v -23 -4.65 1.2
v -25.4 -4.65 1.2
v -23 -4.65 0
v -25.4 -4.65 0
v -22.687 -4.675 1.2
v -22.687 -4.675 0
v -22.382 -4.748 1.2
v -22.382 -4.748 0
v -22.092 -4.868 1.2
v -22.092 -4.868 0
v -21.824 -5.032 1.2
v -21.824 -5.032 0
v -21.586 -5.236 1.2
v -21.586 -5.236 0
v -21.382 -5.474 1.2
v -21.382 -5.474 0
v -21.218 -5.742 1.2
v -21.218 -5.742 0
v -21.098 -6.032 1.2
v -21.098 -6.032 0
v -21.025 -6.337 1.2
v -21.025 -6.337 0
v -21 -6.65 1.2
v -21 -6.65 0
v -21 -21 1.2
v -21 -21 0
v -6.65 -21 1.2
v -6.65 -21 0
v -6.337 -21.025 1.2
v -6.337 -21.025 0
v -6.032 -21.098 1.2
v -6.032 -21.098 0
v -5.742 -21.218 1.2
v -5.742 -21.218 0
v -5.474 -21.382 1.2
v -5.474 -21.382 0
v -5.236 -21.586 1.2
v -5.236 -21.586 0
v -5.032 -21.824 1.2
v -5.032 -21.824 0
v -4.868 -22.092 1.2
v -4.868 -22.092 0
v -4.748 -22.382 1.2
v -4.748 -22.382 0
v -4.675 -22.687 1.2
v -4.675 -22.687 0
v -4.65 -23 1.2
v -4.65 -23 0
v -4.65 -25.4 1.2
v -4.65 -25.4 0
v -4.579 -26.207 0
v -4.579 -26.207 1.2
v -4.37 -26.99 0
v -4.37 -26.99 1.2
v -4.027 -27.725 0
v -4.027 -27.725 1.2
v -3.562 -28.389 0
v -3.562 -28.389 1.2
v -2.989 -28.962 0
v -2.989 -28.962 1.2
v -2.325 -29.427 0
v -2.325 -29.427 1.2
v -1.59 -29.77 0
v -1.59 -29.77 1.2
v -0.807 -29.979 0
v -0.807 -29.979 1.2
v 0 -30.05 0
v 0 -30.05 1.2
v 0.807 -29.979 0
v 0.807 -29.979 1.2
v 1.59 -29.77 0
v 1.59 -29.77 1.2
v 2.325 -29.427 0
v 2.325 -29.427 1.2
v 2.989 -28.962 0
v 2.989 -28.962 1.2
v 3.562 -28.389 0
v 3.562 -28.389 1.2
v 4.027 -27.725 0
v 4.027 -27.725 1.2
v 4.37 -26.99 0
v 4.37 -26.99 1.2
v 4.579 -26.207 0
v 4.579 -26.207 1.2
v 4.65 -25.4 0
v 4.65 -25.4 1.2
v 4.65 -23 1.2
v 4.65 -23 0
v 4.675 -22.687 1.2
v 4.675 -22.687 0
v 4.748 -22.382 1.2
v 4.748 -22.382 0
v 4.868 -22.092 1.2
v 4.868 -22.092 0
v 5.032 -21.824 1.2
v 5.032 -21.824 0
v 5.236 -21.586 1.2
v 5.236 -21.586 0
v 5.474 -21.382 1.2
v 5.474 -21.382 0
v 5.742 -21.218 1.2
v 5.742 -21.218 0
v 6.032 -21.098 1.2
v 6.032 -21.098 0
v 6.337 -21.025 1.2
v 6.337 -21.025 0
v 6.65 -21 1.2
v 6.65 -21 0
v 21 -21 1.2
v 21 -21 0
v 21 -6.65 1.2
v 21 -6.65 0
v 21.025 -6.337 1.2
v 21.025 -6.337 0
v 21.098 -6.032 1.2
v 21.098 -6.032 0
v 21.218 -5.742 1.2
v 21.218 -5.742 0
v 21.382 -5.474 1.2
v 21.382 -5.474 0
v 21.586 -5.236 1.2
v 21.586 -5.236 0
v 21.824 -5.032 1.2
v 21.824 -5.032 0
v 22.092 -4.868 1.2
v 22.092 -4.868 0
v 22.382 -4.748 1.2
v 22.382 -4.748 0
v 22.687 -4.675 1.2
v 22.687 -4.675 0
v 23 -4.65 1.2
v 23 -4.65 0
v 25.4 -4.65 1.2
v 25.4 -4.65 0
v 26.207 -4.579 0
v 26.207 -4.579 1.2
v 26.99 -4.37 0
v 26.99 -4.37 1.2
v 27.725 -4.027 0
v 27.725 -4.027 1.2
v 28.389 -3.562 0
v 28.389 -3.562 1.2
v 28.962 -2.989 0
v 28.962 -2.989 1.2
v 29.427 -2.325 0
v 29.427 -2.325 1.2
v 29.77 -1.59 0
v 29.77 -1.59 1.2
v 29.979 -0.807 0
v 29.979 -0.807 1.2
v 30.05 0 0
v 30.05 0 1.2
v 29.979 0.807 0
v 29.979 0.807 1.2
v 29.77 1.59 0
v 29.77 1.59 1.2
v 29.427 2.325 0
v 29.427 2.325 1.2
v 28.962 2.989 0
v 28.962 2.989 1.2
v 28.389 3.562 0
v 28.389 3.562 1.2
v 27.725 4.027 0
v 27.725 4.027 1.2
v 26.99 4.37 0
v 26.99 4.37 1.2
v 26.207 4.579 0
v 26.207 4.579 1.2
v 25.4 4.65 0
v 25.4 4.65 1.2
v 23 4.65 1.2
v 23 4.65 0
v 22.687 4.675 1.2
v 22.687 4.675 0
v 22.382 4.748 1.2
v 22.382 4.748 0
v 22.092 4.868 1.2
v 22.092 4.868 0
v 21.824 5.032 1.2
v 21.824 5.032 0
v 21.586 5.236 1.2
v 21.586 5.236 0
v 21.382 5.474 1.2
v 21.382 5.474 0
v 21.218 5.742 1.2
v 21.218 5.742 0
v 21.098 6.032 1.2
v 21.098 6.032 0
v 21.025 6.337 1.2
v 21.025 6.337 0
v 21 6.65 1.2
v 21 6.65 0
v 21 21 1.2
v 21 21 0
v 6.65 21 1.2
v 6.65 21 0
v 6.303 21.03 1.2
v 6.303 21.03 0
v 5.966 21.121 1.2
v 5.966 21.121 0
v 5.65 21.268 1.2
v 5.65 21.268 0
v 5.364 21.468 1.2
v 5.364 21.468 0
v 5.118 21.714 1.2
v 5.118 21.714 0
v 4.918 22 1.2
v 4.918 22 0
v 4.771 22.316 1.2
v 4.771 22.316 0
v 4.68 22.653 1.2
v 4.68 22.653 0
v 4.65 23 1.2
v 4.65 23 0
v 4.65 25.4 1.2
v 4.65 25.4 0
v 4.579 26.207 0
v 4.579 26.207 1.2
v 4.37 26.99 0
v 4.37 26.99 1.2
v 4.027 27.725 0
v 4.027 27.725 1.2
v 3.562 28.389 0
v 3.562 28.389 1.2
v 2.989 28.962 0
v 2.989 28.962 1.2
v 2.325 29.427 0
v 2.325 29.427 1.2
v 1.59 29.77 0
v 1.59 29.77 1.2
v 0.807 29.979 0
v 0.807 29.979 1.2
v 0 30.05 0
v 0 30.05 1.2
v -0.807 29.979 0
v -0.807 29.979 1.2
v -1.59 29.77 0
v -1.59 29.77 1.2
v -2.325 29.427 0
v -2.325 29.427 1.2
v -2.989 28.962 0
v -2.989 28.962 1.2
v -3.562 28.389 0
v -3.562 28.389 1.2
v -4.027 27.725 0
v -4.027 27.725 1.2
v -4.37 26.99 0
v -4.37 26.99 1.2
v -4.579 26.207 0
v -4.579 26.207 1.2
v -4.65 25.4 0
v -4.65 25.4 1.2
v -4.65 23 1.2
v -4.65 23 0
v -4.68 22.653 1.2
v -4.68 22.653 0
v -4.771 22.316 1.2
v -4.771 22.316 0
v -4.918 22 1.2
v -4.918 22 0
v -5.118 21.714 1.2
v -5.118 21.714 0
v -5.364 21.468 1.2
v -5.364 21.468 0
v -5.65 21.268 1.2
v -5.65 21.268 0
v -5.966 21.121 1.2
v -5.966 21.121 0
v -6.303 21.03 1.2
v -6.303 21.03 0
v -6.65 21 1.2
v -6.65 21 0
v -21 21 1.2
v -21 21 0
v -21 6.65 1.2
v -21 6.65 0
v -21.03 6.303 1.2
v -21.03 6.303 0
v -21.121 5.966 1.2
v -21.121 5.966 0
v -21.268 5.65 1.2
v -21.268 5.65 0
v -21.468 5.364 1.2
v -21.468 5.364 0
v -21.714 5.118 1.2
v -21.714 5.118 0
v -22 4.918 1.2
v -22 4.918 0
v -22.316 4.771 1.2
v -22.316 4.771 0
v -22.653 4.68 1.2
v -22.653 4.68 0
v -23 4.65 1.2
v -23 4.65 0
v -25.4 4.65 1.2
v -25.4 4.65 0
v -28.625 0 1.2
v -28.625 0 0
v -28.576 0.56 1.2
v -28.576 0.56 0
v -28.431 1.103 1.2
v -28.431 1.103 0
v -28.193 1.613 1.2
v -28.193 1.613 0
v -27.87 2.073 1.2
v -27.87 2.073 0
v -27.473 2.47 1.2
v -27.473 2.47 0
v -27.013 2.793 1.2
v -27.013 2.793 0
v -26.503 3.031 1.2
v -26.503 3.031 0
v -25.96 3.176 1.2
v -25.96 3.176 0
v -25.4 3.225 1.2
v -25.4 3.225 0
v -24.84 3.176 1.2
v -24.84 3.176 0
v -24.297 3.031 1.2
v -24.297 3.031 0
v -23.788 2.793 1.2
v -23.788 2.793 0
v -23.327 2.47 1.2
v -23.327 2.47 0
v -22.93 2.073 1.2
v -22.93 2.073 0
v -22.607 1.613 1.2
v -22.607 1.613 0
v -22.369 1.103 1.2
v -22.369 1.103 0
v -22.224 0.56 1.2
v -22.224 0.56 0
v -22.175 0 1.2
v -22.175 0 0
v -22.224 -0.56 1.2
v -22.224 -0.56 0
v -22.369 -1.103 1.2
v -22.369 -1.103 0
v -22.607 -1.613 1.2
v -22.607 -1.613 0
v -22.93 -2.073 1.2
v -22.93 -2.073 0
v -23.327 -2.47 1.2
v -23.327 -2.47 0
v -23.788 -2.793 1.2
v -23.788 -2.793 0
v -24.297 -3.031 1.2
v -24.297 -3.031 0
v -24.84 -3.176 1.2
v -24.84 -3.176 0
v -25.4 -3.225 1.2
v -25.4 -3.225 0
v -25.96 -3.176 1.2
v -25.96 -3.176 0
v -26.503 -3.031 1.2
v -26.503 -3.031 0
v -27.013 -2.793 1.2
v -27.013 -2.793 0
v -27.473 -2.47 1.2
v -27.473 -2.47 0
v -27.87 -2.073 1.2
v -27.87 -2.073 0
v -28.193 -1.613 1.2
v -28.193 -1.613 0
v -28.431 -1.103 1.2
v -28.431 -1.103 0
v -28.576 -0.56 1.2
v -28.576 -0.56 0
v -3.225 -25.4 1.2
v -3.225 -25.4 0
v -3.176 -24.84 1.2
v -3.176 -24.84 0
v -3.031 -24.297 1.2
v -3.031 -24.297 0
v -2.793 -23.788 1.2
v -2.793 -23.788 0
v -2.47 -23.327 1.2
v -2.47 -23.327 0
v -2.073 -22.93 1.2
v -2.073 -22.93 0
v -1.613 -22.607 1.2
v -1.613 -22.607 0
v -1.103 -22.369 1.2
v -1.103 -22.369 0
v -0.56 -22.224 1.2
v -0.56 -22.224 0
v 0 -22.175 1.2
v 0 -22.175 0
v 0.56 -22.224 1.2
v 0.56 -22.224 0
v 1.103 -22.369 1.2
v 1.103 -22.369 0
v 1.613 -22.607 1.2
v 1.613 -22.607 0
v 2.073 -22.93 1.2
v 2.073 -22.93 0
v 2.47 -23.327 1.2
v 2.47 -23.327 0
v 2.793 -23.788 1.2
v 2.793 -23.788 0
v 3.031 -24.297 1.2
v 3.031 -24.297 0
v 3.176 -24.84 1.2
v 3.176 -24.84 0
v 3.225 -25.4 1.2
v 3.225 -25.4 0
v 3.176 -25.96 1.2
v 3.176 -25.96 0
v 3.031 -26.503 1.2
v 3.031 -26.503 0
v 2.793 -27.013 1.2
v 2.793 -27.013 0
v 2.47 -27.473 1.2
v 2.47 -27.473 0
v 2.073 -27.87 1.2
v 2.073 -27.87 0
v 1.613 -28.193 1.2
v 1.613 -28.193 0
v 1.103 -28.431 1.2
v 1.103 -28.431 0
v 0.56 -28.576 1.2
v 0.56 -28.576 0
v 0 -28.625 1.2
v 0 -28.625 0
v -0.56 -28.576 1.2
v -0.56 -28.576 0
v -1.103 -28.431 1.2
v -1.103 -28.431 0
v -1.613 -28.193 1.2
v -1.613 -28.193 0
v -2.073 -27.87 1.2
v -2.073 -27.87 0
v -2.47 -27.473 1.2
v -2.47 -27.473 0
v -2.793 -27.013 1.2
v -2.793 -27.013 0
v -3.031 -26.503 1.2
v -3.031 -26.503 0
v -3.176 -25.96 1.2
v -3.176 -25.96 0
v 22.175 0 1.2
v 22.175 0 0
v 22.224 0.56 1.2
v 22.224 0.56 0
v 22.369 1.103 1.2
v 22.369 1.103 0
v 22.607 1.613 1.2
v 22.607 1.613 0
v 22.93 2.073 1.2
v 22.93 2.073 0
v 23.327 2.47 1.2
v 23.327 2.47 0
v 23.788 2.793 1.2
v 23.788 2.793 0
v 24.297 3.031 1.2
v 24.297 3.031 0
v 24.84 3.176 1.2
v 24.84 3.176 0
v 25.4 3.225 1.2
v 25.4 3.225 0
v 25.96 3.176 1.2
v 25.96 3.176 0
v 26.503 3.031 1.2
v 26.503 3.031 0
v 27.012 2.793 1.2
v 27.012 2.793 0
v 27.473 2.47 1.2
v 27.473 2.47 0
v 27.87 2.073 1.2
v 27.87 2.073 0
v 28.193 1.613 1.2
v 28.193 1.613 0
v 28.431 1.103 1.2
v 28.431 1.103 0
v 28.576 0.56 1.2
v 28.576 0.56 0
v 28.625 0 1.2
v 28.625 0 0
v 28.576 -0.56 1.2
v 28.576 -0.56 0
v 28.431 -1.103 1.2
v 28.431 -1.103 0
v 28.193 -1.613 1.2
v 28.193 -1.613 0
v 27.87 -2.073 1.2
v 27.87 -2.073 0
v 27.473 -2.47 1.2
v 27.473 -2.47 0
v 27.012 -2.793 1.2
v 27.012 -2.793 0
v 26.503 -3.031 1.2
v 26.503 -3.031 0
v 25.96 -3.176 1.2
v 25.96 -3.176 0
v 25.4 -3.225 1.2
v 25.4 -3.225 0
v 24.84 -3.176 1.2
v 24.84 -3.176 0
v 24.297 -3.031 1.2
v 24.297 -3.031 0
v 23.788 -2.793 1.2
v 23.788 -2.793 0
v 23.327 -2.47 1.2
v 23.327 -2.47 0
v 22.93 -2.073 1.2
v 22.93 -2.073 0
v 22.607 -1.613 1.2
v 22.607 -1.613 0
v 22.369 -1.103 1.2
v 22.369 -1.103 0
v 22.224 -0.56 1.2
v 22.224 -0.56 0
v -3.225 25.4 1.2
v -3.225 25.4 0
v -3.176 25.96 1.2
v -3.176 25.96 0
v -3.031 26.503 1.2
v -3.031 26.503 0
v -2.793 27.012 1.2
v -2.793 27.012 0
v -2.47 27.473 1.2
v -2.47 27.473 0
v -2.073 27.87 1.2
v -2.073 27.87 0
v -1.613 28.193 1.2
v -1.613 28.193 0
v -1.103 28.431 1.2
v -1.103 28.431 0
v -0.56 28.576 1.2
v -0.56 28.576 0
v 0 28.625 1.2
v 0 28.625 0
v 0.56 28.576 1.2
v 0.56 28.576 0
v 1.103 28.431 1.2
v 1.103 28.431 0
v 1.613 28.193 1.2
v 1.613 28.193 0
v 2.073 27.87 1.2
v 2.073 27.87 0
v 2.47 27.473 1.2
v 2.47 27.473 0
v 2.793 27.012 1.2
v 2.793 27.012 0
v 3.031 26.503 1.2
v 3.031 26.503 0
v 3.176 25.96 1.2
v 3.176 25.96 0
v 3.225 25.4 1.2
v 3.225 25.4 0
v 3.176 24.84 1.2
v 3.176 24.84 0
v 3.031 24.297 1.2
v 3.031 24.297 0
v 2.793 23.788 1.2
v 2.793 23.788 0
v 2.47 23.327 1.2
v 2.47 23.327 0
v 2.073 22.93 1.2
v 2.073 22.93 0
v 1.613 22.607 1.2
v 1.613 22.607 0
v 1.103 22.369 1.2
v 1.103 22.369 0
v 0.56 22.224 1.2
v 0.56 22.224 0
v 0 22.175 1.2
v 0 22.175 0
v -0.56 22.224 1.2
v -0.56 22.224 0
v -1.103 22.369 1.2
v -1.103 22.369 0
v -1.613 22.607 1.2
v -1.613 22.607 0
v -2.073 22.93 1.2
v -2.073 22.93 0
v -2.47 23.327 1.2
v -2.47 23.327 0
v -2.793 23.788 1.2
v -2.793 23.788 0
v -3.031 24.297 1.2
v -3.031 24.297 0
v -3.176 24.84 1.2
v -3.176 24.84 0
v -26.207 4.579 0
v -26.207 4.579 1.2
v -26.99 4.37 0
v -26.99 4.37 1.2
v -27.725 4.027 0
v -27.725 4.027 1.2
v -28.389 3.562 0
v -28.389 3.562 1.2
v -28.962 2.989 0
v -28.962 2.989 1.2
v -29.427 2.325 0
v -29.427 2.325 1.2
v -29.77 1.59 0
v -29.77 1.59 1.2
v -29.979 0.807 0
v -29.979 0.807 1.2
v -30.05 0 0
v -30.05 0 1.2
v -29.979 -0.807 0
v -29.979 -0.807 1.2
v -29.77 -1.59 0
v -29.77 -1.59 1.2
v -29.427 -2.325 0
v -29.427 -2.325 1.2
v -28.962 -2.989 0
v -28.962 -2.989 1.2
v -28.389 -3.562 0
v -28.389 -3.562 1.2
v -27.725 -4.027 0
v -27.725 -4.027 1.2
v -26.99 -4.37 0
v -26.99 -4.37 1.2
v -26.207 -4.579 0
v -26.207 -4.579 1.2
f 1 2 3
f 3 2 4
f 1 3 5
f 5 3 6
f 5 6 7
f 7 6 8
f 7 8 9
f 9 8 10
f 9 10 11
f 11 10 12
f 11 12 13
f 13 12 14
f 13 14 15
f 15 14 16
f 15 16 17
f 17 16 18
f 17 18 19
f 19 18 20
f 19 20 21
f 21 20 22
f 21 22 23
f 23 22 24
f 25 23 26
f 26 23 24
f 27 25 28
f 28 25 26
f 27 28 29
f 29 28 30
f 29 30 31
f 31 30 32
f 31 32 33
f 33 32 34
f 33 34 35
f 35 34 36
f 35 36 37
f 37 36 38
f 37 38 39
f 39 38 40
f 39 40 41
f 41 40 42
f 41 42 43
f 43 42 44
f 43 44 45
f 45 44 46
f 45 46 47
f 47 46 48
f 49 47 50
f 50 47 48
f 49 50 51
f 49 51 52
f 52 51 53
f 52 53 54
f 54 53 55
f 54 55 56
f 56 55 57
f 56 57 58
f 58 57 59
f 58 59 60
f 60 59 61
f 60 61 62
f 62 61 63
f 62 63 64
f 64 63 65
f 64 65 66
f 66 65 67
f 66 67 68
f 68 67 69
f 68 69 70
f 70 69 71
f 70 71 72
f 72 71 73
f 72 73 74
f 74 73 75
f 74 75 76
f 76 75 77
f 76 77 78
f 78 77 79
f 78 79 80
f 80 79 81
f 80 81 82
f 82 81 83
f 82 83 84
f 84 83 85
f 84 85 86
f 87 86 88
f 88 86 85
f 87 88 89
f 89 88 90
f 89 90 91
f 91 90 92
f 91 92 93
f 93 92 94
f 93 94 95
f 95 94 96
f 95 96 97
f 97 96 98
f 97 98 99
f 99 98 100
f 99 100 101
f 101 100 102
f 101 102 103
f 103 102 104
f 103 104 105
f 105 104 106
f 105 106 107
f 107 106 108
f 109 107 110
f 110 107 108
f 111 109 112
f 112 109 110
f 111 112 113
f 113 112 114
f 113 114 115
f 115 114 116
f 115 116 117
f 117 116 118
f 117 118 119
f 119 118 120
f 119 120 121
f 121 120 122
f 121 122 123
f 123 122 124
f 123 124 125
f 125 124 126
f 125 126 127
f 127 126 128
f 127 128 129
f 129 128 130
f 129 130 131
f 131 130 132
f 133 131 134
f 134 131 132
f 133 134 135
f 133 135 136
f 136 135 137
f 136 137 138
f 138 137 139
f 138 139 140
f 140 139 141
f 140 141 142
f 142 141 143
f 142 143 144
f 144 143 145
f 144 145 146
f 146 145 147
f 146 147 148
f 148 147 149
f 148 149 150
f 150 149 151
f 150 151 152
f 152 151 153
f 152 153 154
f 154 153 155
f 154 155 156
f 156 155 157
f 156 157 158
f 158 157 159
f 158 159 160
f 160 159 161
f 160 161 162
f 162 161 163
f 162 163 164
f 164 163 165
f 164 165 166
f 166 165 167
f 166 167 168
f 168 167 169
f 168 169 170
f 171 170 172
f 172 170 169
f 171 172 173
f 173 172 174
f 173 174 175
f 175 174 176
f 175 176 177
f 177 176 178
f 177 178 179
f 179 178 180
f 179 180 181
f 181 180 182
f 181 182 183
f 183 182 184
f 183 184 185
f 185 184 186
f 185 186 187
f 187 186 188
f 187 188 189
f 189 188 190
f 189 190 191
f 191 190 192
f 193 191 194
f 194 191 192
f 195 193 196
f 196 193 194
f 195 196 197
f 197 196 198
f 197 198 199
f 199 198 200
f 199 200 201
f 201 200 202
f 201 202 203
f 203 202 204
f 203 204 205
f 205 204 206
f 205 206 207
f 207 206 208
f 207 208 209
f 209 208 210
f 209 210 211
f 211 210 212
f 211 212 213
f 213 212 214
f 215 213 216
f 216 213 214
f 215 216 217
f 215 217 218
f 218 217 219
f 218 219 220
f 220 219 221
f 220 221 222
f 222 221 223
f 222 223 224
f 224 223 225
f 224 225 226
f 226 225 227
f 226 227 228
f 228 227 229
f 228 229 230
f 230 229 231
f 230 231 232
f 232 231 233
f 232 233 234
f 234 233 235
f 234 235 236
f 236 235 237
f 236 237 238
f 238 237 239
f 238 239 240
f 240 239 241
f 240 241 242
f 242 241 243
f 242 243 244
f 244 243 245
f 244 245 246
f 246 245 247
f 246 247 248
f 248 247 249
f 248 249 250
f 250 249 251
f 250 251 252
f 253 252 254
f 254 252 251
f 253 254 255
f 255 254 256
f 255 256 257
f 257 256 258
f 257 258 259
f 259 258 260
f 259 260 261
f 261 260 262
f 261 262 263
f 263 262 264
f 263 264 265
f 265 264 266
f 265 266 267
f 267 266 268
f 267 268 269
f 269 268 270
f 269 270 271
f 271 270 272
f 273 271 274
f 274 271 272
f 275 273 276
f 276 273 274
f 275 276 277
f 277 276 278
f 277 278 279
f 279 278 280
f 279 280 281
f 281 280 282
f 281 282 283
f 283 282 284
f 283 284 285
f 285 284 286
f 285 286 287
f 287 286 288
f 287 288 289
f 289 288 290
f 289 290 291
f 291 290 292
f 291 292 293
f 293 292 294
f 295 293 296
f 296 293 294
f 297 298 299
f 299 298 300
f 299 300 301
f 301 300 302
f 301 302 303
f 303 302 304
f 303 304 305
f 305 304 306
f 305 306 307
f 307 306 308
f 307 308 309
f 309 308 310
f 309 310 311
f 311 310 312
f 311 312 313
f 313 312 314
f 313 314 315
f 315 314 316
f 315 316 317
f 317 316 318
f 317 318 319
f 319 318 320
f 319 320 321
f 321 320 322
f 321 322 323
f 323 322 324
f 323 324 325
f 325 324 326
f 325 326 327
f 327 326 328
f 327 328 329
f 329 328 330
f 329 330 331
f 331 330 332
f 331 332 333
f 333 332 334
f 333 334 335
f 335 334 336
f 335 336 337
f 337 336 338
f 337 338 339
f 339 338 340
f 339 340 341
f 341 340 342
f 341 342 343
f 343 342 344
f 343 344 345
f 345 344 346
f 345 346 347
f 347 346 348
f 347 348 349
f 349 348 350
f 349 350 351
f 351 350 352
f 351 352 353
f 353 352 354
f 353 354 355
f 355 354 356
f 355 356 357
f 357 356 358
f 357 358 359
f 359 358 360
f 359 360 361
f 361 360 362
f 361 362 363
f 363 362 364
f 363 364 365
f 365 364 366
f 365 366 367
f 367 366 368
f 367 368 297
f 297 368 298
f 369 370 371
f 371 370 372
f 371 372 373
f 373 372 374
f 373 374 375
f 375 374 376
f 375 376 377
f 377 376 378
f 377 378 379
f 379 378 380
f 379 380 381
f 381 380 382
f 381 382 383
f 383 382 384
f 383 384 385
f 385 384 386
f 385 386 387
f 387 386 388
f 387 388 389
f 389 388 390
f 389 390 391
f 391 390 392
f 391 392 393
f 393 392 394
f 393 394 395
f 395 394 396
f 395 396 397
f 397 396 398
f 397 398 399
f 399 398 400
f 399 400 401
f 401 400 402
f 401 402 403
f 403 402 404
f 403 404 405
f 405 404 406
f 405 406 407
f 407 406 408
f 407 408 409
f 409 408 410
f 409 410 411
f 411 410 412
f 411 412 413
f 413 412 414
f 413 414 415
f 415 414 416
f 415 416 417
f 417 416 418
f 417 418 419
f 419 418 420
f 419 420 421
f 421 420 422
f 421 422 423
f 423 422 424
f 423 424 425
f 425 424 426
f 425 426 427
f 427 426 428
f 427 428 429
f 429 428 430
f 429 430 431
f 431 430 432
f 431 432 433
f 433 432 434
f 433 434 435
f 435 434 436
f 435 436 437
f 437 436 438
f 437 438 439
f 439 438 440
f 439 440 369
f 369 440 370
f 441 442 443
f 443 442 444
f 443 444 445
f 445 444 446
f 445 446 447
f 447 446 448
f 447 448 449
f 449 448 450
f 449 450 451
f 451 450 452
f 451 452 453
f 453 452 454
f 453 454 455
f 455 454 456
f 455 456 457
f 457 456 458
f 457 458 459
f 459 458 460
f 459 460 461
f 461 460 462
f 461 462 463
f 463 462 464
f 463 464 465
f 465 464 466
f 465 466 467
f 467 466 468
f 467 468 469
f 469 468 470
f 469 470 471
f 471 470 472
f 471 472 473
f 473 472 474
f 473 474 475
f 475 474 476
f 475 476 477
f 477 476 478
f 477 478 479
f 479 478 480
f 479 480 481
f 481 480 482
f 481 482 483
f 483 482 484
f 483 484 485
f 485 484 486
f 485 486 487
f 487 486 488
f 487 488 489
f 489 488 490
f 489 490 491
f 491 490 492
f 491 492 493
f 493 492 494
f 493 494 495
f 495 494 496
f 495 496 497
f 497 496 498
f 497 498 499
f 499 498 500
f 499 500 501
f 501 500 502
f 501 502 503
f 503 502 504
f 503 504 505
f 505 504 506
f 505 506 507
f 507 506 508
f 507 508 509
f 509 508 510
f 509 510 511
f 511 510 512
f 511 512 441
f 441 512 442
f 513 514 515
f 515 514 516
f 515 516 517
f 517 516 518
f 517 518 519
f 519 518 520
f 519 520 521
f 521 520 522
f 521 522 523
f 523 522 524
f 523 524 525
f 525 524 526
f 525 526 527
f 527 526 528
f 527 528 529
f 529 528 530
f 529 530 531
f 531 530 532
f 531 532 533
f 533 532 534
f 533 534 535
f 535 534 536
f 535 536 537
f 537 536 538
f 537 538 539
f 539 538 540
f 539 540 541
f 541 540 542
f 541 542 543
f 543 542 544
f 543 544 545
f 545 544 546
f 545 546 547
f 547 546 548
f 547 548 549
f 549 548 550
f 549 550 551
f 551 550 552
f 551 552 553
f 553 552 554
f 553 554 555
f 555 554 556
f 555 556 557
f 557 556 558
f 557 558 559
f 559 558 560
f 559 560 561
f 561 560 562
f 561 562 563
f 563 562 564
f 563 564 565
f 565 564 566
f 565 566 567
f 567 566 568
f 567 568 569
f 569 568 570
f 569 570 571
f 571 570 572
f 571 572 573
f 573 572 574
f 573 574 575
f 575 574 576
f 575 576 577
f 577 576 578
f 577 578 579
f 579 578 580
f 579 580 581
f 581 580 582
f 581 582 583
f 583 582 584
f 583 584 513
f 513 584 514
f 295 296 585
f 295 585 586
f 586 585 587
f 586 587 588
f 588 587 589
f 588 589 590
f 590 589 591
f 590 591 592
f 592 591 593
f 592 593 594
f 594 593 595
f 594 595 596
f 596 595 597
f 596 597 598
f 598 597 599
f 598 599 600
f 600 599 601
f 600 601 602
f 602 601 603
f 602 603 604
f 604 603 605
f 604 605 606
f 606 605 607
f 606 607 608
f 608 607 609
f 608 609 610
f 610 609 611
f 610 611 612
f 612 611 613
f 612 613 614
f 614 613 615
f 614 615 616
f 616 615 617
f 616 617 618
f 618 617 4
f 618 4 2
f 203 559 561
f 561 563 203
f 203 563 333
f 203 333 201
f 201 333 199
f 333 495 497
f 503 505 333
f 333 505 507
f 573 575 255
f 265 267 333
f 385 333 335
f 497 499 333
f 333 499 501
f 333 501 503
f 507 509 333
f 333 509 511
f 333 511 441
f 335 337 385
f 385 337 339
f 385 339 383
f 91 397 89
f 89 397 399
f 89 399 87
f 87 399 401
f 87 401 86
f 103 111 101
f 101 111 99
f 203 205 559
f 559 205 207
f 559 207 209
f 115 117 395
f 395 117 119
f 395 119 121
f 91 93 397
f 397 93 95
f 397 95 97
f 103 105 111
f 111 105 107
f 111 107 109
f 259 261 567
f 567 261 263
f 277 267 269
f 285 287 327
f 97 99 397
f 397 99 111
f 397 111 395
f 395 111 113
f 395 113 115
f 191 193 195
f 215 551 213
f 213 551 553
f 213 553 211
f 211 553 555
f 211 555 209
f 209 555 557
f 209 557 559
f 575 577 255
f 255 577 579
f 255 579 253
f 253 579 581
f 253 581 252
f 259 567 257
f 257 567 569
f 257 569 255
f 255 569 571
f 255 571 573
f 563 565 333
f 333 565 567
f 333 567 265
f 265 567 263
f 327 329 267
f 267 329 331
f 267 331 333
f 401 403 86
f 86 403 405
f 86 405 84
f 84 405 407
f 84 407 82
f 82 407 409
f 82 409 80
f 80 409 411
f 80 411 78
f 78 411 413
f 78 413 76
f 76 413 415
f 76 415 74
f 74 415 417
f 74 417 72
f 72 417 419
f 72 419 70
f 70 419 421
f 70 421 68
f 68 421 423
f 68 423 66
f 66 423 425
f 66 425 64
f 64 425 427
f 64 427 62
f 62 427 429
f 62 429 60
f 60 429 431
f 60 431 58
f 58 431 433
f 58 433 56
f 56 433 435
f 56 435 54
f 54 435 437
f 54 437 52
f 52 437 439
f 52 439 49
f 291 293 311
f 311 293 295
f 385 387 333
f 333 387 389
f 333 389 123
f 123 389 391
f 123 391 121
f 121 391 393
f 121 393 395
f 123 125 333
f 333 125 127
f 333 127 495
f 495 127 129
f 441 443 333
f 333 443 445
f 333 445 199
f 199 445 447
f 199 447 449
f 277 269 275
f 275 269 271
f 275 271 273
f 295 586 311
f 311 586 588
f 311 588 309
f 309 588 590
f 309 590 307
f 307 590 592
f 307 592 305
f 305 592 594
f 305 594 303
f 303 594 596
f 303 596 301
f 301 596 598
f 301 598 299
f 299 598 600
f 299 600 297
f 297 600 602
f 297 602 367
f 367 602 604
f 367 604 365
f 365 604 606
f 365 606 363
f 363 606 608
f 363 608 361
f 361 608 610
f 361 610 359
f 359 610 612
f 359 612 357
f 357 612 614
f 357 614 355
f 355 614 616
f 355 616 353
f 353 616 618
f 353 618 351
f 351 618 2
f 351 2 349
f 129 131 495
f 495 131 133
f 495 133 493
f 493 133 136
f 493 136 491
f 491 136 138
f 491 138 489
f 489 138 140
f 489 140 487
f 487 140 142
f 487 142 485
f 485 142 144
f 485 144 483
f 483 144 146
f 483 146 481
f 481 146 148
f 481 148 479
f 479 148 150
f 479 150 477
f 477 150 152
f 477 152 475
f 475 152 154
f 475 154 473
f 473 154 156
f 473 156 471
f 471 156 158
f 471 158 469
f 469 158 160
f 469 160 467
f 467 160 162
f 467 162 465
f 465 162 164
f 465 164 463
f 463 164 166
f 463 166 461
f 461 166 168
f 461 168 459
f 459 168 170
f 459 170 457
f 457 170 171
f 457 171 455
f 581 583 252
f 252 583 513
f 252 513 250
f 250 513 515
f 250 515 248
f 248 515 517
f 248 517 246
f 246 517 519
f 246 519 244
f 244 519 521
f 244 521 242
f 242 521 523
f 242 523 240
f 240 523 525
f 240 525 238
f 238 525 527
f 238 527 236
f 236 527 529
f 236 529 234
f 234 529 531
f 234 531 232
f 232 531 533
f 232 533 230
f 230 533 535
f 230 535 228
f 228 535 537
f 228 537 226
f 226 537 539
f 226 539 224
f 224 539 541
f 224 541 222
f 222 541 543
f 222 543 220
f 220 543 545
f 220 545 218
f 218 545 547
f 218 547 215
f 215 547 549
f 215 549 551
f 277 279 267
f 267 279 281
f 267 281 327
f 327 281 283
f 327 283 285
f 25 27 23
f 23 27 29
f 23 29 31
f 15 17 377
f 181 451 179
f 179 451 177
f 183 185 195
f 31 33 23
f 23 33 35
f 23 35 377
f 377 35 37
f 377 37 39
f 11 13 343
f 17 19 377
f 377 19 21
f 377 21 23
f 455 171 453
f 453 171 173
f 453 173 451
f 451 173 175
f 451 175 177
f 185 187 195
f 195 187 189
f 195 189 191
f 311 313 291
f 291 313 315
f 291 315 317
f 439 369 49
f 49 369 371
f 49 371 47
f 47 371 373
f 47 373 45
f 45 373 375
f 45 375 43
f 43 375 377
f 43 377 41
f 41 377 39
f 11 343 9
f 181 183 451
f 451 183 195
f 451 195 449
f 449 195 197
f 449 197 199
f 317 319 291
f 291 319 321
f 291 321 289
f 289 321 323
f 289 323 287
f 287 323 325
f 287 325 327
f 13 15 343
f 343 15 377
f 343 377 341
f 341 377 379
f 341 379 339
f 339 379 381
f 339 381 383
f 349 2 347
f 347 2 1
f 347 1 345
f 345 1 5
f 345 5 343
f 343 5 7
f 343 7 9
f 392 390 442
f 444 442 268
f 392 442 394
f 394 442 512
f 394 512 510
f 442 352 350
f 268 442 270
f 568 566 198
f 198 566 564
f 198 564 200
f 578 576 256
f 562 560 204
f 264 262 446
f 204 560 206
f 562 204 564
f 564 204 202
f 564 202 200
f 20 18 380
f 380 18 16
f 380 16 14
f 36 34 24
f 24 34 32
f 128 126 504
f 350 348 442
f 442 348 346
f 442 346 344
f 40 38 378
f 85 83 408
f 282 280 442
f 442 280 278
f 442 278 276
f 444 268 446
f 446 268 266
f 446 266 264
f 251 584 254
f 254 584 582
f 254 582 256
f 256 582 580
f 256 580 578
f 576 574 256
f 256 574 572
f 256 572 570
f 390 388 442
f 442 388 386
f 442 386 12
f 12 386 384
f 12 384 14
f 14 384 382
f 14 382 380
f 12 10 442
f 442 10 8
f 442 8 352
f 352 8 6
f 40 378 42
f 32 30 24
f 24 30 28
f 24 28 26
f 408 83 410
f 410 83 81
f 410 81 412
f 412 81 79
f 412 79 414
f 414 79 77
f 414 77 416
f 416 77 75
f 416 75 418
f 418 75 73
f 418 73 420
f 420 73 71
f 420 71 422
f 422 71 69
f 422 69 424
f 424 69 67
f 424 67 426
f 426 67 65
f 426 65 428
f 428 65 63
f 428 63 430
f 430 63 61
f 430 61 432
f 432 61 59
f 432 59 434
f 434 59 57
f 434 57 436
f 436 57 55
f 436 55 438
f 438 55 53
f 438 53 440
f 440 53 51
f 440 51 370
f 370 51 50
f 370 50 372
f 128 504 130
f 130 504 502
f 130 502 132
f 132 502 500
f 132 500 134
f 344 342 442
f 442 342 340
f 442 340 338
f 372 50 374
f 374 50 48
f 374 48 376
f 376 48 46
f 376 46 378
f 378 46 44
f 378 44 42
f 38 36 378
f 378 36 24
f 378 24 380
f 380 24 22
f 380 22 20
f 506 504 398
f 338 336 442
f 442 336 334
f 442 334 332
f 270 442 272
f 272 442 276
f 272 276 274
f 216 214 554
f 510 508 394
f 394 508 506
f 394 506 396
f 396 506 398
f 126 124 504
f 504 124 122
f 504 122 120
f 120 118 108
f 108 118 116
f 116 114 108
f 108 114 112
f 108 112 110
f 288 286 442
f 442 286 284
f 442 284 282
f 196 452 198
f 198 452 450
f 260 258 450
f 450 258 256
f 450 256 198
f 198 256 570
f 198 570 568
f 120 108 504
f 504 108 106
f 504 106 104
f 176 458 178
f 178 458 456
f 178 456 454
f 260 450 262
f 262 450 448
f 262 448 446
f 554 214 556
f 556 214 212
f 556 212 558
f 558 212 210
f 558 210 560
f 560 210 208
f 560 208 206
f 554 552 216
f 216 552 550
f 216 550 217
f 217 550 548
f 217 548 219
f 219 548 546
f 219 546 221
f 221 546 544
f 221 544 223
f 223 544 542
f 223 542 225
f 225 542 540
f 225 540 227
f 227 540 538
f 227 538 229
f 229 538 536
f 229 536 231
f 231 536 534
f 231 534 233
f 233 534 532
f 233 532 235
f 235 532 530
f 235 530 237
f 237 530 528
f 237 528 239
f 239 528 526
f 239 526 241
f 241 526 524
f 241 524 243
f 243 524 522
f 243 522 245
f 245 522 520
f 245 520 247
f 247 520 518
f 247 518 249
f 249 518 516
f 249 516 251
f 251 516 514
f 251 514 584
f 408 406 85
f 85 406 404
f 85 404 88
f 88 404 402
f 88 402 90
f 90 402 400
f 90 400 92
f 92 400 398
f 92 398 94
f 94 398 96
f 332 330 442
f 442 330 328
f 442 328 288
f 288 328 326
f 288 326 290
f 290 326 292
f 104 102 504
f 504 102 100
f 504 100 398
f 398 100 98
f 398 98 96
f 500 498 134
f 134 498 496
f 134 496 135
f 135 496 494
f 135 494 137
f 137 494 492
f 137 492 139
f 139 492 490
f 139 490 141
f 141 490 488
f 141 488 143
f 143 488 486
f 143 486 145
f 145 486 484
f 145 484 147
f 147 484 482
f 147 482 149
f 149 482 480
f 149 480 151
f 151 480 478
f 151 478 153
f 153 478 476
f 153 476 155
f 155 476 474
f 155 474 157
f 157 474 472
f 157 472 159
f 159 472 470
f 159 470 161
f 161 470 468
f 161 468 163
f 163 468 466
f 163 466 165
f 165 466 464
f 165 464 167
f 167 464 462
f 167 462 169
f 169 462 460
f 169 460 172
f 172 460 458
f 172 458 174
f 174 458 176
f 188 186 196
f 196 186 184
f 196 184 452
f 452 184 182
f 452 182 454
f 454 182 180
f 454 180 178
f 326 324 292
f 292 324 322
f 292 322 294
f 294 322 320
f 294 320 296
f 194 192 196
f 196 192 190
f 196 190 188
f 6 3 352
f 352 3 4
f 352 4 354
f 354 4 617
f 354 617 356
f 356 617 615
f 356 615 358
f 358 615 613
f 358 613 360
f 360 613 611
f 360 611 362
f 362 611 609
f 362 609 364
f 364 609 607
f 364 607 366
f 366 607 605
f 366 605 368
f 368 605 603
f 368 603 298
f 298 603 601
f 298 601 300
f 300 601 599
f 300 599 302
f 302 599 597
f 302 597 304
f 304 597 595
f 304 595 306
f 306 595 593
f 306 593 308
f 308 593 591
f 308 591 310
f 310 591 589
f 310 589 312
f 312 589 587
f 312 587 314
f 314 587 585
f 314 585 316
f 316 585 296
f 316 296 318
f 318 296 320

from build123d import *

# Parameters (mm, degrees)
SKETCH1_R           = 3.225
BOSS_EXTRUDE1_DEPTH = 1.2


with BuildPart() as part:
    # Sketch1 → Boss-Extrude1 (new body)
    with BuildSketch(Plane.XY):
        with BuildLine():
            ThreePointArc((4.65, 25.4), (0, 30.05), (-4.65, 25.4))
            Line((-4.65, 25.4), (-4.65, 23))
            ThreePointArc((-4.65, 23), (-5.235786438, 21.585786438), (-6.65, 21))
            Line((-6.65, 21), (-8.759132098, 21))
            Line((-8.759132098, 21), (-21, 21))
            Line((-21, 21), (-21, 7.133487824))
            Line((-21, 7.133487824), (-21, 6.65))
            ThreePointArc((-21, 6.65), (-21.585786438, 5.235786438), (-23, 4.65))
            Line((-23, 4.65), (-25.4, 4.65))
            ThreePointArc((-25.4, 4.65), (-30.05, 0), (-25.4, -4.65))
            Line((-25.4, -4.65), (-23, -4.65))
            ThreePointArc((-23, -4.65), (-21.585786438, -5.235786438), (-21, -6.65))
            Line((-21, -6.65), (-21, -8.759132098))
            Line((-21, -8.759132098), (-21, -21))
            Line((-21, -21), (-7.133487824, -21))
            Line((-7.133487824, -21), (-6.65, -21))
            ThreePointArc((-6.65, -21), (-5.235786438, -21.585786438), (-4.65, -23))
            Line((-4.65, -23), (-4.65, -25.4))
            ThreePointArc((-4.65, -25.4), (0, -30.05), (4.65, -25.4))
            Line((4.65, -25.4), (4.65, -23))
            ThreePointArc((4.65, -23), (5.235786438, -21.585786438), (6.65, -21))
            Line((6.65, -21), (8.759132098, -21))
            Line((8.759132098, -21), (21, -21))
            Line((21, -21), (21, -7.133487824))
            Line((21, -7.133487824), (21, -6.65))
            ThreePointArc((21, -6.65), (21.585786438, -5.235786438), (23, -4.65))
            Line((23, -4.65), (25.4, -4.65))
            ThreePointArc((25.4, -4.65), (30.05, 0), (25.4, 4.65))
            Line((25.4, 4.65), (23, 4.65))
            ThreePointArc((23, 4.65), (21.585786438, 5.235786438), (21, 6.65))
            Line((21, 6.65), (21, 8.759132098))
            Line((21, 8.759132098), (21, 21))
            Line((21, 21), (7.133487824, 21))
            Line((7.133487824, 21), (6.65, 21))
            ThreePointArc((6.65, 21), (5.235786438, 21.585786438), (4.65, 23))
            Line((4.65, 23), (4.65, 25.4))
        make_face()
        with Locations((0, -25.4)):
            Circle(SKETCH1_R, mode=Mode.SUBTRACT)
        with Locations((25.4, 0)):
            Circle(SKETCH1_R, mode=Mode.SUBTRACT)
        with Locations((-25.4, 0)):
            Circle(SKETCH1_R, mode=Mode.SUBTRACT)
        with Locations((0, 25.4)):
            Circle(SKETCH1_R, mode=Mode.SUBTRACT)
    extrude(amount=BOSS_EXTRUDE1_DEPTH)


solid = part.part
